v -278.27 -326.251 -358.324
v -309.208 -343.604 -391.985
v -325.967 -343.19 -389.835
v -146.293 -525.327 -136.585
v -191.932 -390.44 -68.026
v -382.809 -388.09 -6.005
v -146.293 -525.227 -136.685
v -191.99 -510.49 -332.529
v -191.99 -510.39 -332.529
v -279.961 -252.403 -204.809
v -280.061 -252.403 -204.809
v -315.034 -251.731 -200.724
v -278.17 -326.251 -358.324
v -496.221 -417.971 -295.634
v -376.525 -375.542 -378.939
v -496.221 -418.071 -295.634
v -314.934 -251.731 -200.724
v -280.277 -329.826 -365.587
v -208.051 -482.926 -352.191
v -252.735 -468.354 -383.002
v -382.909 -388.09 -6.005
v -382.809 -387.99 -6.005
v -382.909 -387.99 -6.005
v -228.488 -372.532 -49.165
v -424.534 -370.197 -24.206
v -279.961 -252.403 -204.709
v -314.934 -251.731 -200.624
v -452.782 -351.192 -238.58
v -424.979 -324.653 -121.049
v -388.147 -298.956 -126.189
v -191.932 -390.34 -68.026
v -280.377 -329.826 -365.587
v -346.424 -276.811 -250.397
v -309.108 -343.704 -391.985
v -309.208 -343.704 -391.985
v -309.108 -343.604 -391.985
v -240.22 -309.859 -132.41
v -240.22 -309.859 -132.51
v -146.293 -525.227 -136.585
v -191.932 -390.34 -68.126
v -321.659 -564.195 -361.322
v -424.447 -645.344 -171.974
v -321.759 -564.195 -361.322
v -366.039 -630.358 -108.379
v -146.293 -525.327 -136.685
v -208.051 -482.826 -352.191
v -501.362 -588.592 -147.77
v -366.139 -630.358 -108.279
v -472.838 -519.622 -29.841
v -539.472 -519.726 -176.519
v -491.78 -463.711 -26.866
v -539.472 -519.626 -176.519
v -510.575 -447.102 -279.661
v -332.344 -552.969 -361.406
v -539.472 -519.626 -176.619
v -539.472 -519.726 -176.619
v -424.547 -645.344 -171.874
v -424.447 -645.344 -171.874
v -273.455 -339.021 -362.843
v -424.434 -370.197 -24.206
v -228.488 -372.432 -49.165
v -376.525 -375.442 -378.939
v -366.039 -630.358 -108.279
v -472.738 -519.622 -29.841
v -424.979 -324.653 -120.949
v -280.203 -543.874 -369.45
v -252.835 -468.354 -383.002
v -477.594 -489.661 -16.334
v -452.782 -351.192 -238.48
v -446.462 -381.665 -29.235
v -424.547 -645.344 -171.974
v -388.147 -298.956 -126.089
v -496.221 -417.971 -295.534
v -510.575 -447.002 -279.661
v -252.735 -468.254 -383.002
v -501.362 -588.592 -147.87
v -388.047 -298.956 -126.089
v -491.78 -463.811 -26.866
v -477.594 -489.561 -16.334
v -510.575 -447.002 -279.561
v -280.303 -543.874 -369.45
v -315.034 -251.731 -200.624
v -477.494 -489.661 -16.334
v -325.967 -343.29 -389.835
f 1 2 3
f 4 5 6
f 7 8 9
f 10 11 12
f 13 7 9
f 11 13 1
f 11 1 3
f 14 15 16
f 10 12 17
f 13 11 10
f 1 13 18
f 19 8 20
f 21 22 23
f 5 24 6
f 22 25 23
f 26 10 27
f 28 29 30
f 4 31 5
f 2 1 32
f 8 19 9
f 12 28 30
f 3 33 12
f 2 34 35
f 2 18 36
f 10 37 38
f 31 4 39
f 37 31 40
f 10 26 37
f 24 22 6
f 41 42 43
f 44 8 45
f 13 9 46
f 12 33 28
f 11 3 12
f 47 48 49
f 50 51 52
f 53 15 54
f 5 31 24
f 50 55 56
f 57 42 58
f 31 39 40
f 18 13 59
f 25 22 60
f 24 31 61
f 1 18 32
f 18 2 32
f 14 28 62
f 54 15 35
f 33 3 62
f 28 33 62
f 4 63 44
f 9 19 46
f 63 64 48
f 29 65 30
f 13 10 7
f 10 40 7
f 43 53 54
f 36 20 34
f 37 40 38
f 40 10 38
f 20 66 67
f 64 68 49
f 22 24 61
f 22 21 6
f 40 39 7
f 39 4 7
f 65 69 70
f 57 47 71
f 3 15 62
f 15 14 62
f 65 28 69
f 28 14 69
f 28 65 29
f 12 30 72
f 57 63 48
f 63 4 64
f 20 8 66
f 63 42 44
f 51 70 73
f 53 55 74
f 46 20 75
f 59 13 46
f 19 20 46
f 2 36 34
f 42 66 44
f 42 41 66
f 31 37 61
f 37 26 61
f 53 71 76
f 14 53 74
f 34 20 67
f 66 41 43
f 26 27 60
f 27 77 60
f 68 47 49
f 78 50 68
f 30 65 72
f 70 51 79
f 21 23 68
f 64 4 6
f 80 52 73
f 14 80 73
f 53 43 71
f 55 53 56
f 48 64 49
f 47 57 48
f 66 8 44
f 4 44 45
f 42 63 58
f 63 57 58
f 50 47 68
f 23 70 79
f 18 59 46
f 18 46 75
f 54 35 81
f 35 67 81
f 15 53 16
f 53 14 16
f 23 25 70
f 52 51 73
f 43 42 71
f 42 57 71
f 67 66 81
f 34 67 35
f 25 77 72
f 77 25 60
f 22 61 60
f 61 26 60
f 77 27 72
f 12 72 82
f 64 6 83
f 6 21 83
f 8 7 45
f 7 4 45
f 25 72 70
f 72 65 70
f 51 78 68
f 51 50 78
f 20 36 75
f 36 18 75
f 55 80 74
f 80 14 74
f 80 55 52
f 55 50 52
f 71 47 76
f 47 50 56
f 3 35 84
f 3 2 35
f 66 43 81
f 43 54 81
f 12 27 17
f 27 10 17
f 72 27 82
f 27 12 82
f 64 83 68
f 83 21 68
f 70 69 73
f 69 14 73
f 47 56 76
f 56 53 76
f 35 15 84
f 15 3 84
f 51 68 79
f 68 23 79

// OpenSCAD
hull(){ translate([-280.060537268,-252.502837684,-204.808929247])cube(0.1,0.1,0.1);
translate([-192.090084251,-510.490232386,-332.528932506])cube(0.1,0.1,0.1);
translate([-280.303430079,-543.874230431,-369.450307828])cube(0.1,0.1,0.1);
translate([-146.393154892,-525.326897762,-136.684949539])cube(0.1,0.1,0.1);
translate([-477.59350596,-489.660912454,-16.4344430744])cube(0.1,0.1,0.1);
translate([-382.908745247,-388.089987326,-6.1051964512])cube(0.1,0.1,0.1);
translate([-424.53361599,-370.297395518,-24.3058752271])cube(0.1,0.1,0.1);
translate([-321.75862069,-564.195402299,-361.32183908])cube(0.1,0.1,0.1);
translate([-332.34375,-552.96875,-361.40625])cube(0.1,0.1,0.1);
translate([-315.03407155,-251.831345826,-200.724020443])cube(0.1,0.1,0.1);
translate([-388.146853147,-299.055944056,-126.188811189])cube(0.1,0.1,0.1);
translate([-208.150914328,-482.9255141,-352.190702659])cube(0.1,0.1,0.1);
translate([-252.834703345,-468.353544397,-383.00154635])cube(0.1,0.1,0.1);
translate([-309.207603453,-343.704303123,-391.985275451])cube(0.1,0.1,0.1);
translate([-240.320247934,-309.958677686,-132.510330579])cube(0.1,0.1,0.1);
translate([-192.031739812,-390.439524556,-68.1256530825])cube(0.1,0.1,0.1);
translate([-228.587672053,-372.532415719,-49.2649112308])cube(0.1,0.1,0.1);
translate([-366.139317014,-630.358114234,-108.378664249])cube(0.1,0.1,0.1);
translate([-472.837699024,-519.622496148,-29.9409347714])cube(0.1,0.1,0.1);
translate([-424.547325103,-645.344379467,-171.974225688])cube(0.1,0.1,0.1);
translate([-501.36194608,-588.591571119,-147.869538271])cube(0.1,0.1,0.1);
translate([-346.423740277,-276.910720325,-250.397362191])cube(0.1,0.1,0.1);
translate([-325.967376529,-343.289533303,-389.834617127])cube(0.1,0.1,0.1);
translate([-376.525139665,-375.541899441,-378.938547486])cube(0.1,0.1,0.1);
translate([-278.27027027,-326.351351351,-358.324324324])cube(0.1,0.1,0.1);
translate([-280.377454731,-329.926039276,-365.586585055])cube(0.1,0.1,0.1);
translate([-273.555259654,-339.121171771,-362.842876165])cube(0.1,0.1,0.1);
translate([-510.574712644,-447.102238355,-279.661222021])cube(0.1,0.1,0.1);
translate([-496.221091582,-418.071230342,-295.633672525])cube(0.1,0.1,0.1);
translate([-452.782305006,-351.292200233,-238.579743888])cube(0.1,0.1,0.1);
translate([-539.472081218,-519.725888325,-176.61928934])cube(0.1,0.1,0.1);
translate([-424.979423868,-324.75308642,-121.049382716])cube(0.1,0.1,0.1);
translate([-491.78028965,-463.811374073,-26.9657364889])cube(0.1,0.1,0.1);
translate([-446.461997019,-381.764530551,-29.3353204173])cube(0.1,0.1,0.1); }
